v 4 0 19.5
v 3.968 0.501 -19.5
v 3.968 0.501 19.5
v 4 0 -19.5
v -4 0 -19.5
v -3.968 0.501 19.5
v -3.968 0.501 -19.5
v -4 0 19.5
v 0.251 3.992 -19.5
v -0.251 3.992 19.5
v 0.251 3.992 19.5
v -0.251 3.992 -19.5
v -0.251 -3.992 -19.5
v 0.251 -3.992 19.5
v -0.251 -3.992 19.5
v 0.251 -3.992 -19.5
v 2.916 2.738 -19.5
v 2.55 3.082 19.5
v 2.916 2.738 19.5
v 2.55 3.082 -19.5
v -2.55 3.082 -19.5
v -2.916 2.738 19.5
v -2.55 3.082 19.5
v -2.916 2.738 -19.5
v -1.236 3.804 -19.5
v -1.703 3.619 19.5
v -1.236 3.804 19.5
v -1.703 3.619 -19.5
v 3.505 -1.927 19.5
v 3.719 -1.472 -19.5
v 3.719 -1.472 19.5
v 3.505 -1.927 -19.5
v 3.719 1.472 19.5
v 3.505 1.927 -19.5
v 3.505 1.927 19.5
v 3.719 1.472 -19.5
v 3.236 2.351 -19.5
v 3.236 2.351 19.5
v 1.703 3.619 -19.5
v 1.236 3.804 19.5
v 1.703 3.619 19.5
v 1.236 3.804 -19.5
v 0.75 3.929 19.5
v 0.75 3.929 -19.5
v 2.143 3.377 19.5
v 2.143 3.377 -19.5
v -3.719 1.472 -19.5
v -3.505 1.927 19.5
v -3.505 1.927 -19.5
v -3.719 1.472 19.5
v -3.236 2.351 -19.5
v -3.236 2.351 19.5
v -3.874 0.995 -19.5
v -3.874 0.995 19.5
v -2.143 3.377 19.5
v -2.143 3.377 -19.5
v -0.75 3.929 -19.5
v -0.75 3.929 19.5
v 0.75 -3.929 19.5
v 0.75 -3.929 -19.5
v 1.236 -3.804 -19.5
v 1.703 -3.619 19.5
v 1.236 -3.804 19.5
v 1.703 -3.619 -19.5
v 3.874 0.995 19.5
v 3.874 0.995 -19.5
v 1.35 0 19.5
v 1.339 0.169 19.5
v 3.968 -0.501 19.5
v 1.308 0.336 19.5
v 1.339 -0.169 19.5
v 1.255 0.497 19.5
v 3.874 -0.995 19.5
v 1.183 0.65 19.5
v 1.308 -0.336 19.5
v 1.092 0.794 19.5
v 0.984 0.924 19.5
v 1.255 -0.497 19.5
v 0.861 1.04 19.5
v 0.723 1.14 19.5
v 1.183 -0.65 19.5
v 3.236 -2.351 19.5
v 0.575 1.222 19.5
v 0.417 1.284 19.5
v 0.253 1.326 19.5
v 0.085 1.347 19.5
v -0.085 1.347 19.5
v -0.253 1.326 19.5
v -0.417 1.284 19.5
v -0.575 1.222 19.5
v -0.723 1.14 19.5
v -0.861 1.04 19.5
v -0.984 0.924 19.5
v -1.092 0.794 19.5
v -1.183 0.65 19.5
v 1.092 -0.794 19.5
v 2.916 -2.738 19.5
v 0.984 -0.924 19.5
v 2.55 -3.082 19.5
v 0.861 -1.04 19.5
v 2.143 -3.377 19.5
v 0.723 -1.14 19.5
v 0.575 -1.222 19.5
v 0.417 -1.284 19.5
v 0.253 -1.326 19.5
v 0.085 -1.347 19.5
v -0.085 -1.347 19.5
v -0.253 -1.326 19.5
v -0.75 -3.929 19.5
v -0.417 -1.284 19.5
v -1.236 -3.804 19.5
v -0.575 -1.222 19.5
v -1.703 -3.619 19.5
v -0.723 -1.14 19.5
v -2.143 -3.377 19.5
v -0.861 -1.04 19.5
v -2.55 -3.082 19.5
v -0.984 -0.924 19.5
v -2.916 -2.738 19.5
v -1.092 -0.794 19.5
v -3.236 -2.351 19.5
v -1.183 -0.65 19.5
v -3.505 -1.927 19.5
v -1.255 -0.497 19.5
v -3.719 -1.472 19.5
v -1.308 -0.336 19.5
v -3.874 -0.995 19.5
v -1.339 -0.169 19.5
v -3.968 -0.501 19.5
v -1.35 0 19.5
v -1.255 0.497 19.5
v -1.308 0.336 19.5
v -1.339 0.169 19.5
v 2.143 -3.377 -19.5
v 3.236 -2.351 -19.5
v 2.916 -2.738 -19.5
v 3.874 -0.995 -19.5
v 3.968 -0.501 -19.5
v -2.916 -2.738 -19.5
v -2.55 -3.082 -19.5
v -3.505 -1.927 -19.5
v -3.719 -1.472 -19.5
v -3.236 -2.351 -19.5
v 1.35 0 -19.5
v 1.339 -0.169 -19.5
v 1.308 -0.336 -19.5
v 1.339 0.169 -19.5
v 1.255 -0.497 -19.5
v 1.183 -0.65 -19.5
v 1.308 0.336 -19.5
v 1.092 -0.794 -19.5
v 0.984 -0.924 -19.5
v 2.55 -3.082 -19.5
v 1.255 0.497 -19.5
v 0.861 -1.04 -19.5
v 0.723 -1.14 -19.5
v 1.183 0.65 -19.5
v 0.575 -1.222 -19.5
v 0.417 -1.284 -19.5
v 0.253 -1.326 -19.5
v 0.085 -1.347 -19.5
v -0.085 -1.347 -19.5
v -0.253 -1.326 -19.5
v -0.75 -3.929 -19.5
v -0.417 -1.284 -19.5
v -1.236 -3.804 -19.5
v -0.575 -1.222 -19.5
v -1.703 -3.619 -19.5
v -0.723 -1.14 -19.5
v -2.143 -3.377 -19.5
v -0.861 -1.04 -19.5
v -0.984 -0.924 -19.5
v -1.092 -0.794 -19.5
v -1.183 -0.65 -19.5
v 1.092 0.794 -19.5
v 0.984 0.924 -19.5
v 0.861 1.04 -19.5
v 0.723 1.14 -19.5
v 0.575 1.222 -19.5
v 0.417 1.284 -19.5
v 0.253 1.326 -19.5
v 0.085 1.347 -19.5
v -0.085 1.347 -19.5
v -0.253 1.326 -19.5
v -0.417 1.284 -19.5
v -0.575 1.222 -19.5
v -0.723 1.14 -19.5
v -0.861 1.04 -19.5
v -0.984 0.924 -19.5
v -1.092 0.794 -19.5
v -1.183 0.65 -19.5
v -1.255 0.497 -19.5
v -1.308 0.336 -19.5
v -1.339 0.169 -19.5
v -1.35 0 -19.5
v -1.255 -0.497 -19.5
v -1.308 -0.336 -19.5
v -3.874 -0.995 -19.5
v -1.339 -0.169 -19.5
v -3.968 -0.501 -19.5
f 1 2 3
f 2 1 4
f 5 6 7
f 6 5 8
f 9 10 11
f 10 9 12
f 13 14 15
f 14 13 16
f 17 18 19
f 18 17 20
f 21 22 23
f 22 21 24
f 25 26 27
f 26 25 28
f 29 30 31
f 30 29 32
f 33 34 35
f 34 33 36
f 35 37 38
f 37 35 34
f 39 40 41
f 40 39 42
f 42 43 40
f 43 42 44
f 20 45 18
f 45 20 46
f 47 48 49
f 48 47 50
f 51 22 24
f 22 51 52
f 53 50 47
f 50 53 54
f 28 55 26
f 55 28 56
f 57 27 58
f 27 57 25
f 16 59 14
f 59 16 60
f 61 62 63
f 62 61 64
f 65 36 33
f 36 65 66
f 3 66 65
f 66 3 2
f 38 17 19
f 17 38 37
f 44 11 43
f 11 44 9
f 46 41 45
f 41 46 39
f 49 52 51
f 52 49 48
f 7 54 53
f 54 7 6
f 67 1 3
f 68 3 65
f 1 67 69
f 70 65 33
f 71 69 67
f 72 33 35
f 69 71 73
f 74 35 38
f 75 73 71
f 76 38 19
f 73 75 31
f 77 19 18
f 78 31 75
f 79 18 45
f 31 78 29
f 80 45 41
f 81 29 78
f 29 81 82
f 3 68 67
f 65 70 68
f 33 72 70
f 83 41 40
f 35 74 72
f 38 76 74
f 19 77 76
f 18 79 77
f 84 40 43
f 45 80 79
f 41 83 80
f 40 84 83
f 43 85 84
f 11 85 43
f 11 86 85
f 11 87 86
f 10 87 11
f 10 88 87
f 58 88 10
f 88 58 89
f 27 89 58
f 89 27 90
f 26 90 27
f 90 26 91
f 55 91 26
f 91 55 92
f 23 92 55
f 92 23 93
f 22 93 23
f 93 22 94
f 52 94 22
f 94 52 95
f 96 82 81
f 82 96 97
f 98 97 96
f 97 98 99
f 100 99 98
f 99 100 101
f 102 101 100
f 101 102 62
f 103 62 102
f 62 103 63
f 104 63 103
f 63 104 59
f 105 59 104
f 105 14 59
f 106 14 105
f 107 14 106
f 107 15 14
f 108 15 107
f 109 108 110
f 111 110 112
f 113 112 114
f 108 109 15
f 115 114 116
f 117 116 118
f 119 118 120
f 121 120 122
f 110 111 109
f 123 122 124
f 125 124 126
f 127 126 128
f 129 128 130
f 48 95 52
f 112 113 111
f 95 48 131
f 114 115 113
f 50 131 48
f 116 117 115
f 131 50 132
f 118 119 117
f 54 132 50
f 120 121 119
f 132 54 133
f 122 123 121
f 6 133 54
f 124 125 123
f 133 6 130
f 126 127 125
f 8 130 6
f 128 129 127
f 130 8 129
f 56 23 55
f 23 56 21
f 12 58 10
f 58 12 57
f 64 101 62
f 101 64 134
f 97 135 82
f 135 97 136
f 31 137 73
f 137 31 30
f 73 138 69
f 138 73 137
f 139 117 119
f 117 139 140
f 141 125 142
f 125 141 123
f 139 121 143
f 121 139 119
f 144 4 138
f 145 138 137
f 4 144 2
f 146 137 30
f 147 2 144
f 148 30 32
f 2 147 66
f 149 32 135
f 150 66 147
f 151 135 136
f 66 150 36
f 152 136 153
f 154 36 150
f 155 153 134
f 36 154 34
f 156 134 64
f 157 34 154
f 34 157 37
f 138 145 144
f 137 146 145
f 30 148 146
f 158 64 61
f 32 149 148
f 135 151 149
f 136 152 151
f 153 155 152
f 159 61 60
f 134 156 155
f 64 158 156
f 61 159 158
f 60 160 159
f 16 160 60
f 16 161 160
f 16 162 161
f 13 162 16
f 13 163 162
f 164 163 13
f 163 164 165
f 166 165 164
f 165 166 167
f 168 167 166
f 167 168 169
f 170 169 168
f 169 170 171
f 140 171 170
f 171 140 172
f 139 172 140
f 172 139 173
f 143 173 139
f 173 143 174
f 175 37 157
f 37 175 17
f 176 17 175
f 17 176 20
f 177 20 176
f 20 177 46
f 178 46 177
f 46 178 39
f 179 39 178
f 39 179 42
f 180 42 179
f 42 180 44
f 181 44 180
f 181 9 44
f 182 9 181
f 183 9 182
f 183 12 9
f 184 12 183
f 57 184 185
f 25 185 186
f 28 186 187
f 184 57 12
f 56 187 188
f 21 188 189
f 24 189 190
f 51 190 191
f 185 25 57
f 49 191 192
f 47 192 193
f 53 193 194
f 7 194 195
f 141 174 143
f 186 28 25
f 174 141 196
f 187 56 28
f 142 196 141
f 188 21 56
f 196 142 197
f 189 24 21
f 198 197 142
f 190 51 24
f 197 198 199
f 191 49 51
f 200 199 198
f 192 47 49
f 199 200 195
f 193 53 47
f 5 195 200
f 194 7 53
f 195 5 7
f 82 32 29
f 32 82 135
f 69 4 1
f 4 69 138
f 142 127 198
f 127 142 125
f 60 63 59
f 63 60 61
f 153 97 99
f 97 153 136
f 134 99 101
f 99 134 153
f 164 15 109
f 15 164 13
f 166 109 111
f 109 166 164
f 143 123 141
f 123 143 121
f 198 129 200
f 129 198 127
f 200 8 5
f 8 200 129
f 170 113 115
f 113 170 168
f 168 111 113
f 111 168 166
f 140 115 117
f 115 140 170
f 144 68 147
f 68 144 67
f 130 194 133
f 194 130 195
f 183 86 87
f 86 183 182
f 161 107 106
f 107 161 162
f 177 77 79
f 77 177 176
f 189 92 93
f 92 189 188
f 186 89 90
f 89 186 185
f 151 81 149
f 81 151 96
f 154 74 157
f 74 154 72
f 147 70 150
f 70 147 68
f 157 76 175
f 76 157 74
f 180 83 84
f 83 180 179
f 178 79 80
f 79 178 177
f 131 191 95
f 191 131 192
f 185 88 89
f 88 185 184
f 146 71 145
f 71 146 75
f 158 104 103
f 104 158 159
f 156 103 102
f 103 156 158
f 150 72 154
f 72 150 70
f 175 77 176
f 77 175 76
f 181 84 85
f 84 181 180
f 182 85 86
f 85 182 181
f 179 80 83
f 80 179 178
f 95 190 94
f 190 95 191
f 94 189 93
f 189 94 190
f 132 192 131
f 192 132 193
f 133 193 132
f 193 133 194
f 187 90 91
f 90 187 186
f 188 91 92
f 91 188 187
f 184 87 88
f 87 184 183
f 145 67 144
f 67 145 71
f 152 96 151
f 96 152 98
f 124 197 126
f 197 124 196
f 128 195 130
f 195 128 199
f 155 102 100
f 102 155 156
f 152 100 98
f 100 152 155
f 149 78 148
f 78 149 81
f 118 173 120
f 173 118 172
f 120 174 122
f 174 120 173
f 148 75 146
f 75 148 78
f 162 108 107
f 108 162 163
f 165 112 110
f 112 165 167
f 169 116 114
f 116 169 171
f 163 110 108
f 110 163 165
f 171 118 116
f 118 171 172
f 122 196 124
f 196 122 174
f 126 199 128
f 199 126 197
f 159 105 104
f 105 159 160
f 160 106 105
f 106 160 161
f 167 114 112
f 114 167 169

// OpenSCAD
$fn = 50;


difference() {
	union() {
		translate(v = [0, 0, -19.5000000000]) {
			cylinder(h = 39, r = 4.0000000000);
		}
	}
	union() {
		translate(v = [0, 0, -100.0000000000]) {
			cylinder(h = 200, r = 1.3500000000);
		}
	}
}
